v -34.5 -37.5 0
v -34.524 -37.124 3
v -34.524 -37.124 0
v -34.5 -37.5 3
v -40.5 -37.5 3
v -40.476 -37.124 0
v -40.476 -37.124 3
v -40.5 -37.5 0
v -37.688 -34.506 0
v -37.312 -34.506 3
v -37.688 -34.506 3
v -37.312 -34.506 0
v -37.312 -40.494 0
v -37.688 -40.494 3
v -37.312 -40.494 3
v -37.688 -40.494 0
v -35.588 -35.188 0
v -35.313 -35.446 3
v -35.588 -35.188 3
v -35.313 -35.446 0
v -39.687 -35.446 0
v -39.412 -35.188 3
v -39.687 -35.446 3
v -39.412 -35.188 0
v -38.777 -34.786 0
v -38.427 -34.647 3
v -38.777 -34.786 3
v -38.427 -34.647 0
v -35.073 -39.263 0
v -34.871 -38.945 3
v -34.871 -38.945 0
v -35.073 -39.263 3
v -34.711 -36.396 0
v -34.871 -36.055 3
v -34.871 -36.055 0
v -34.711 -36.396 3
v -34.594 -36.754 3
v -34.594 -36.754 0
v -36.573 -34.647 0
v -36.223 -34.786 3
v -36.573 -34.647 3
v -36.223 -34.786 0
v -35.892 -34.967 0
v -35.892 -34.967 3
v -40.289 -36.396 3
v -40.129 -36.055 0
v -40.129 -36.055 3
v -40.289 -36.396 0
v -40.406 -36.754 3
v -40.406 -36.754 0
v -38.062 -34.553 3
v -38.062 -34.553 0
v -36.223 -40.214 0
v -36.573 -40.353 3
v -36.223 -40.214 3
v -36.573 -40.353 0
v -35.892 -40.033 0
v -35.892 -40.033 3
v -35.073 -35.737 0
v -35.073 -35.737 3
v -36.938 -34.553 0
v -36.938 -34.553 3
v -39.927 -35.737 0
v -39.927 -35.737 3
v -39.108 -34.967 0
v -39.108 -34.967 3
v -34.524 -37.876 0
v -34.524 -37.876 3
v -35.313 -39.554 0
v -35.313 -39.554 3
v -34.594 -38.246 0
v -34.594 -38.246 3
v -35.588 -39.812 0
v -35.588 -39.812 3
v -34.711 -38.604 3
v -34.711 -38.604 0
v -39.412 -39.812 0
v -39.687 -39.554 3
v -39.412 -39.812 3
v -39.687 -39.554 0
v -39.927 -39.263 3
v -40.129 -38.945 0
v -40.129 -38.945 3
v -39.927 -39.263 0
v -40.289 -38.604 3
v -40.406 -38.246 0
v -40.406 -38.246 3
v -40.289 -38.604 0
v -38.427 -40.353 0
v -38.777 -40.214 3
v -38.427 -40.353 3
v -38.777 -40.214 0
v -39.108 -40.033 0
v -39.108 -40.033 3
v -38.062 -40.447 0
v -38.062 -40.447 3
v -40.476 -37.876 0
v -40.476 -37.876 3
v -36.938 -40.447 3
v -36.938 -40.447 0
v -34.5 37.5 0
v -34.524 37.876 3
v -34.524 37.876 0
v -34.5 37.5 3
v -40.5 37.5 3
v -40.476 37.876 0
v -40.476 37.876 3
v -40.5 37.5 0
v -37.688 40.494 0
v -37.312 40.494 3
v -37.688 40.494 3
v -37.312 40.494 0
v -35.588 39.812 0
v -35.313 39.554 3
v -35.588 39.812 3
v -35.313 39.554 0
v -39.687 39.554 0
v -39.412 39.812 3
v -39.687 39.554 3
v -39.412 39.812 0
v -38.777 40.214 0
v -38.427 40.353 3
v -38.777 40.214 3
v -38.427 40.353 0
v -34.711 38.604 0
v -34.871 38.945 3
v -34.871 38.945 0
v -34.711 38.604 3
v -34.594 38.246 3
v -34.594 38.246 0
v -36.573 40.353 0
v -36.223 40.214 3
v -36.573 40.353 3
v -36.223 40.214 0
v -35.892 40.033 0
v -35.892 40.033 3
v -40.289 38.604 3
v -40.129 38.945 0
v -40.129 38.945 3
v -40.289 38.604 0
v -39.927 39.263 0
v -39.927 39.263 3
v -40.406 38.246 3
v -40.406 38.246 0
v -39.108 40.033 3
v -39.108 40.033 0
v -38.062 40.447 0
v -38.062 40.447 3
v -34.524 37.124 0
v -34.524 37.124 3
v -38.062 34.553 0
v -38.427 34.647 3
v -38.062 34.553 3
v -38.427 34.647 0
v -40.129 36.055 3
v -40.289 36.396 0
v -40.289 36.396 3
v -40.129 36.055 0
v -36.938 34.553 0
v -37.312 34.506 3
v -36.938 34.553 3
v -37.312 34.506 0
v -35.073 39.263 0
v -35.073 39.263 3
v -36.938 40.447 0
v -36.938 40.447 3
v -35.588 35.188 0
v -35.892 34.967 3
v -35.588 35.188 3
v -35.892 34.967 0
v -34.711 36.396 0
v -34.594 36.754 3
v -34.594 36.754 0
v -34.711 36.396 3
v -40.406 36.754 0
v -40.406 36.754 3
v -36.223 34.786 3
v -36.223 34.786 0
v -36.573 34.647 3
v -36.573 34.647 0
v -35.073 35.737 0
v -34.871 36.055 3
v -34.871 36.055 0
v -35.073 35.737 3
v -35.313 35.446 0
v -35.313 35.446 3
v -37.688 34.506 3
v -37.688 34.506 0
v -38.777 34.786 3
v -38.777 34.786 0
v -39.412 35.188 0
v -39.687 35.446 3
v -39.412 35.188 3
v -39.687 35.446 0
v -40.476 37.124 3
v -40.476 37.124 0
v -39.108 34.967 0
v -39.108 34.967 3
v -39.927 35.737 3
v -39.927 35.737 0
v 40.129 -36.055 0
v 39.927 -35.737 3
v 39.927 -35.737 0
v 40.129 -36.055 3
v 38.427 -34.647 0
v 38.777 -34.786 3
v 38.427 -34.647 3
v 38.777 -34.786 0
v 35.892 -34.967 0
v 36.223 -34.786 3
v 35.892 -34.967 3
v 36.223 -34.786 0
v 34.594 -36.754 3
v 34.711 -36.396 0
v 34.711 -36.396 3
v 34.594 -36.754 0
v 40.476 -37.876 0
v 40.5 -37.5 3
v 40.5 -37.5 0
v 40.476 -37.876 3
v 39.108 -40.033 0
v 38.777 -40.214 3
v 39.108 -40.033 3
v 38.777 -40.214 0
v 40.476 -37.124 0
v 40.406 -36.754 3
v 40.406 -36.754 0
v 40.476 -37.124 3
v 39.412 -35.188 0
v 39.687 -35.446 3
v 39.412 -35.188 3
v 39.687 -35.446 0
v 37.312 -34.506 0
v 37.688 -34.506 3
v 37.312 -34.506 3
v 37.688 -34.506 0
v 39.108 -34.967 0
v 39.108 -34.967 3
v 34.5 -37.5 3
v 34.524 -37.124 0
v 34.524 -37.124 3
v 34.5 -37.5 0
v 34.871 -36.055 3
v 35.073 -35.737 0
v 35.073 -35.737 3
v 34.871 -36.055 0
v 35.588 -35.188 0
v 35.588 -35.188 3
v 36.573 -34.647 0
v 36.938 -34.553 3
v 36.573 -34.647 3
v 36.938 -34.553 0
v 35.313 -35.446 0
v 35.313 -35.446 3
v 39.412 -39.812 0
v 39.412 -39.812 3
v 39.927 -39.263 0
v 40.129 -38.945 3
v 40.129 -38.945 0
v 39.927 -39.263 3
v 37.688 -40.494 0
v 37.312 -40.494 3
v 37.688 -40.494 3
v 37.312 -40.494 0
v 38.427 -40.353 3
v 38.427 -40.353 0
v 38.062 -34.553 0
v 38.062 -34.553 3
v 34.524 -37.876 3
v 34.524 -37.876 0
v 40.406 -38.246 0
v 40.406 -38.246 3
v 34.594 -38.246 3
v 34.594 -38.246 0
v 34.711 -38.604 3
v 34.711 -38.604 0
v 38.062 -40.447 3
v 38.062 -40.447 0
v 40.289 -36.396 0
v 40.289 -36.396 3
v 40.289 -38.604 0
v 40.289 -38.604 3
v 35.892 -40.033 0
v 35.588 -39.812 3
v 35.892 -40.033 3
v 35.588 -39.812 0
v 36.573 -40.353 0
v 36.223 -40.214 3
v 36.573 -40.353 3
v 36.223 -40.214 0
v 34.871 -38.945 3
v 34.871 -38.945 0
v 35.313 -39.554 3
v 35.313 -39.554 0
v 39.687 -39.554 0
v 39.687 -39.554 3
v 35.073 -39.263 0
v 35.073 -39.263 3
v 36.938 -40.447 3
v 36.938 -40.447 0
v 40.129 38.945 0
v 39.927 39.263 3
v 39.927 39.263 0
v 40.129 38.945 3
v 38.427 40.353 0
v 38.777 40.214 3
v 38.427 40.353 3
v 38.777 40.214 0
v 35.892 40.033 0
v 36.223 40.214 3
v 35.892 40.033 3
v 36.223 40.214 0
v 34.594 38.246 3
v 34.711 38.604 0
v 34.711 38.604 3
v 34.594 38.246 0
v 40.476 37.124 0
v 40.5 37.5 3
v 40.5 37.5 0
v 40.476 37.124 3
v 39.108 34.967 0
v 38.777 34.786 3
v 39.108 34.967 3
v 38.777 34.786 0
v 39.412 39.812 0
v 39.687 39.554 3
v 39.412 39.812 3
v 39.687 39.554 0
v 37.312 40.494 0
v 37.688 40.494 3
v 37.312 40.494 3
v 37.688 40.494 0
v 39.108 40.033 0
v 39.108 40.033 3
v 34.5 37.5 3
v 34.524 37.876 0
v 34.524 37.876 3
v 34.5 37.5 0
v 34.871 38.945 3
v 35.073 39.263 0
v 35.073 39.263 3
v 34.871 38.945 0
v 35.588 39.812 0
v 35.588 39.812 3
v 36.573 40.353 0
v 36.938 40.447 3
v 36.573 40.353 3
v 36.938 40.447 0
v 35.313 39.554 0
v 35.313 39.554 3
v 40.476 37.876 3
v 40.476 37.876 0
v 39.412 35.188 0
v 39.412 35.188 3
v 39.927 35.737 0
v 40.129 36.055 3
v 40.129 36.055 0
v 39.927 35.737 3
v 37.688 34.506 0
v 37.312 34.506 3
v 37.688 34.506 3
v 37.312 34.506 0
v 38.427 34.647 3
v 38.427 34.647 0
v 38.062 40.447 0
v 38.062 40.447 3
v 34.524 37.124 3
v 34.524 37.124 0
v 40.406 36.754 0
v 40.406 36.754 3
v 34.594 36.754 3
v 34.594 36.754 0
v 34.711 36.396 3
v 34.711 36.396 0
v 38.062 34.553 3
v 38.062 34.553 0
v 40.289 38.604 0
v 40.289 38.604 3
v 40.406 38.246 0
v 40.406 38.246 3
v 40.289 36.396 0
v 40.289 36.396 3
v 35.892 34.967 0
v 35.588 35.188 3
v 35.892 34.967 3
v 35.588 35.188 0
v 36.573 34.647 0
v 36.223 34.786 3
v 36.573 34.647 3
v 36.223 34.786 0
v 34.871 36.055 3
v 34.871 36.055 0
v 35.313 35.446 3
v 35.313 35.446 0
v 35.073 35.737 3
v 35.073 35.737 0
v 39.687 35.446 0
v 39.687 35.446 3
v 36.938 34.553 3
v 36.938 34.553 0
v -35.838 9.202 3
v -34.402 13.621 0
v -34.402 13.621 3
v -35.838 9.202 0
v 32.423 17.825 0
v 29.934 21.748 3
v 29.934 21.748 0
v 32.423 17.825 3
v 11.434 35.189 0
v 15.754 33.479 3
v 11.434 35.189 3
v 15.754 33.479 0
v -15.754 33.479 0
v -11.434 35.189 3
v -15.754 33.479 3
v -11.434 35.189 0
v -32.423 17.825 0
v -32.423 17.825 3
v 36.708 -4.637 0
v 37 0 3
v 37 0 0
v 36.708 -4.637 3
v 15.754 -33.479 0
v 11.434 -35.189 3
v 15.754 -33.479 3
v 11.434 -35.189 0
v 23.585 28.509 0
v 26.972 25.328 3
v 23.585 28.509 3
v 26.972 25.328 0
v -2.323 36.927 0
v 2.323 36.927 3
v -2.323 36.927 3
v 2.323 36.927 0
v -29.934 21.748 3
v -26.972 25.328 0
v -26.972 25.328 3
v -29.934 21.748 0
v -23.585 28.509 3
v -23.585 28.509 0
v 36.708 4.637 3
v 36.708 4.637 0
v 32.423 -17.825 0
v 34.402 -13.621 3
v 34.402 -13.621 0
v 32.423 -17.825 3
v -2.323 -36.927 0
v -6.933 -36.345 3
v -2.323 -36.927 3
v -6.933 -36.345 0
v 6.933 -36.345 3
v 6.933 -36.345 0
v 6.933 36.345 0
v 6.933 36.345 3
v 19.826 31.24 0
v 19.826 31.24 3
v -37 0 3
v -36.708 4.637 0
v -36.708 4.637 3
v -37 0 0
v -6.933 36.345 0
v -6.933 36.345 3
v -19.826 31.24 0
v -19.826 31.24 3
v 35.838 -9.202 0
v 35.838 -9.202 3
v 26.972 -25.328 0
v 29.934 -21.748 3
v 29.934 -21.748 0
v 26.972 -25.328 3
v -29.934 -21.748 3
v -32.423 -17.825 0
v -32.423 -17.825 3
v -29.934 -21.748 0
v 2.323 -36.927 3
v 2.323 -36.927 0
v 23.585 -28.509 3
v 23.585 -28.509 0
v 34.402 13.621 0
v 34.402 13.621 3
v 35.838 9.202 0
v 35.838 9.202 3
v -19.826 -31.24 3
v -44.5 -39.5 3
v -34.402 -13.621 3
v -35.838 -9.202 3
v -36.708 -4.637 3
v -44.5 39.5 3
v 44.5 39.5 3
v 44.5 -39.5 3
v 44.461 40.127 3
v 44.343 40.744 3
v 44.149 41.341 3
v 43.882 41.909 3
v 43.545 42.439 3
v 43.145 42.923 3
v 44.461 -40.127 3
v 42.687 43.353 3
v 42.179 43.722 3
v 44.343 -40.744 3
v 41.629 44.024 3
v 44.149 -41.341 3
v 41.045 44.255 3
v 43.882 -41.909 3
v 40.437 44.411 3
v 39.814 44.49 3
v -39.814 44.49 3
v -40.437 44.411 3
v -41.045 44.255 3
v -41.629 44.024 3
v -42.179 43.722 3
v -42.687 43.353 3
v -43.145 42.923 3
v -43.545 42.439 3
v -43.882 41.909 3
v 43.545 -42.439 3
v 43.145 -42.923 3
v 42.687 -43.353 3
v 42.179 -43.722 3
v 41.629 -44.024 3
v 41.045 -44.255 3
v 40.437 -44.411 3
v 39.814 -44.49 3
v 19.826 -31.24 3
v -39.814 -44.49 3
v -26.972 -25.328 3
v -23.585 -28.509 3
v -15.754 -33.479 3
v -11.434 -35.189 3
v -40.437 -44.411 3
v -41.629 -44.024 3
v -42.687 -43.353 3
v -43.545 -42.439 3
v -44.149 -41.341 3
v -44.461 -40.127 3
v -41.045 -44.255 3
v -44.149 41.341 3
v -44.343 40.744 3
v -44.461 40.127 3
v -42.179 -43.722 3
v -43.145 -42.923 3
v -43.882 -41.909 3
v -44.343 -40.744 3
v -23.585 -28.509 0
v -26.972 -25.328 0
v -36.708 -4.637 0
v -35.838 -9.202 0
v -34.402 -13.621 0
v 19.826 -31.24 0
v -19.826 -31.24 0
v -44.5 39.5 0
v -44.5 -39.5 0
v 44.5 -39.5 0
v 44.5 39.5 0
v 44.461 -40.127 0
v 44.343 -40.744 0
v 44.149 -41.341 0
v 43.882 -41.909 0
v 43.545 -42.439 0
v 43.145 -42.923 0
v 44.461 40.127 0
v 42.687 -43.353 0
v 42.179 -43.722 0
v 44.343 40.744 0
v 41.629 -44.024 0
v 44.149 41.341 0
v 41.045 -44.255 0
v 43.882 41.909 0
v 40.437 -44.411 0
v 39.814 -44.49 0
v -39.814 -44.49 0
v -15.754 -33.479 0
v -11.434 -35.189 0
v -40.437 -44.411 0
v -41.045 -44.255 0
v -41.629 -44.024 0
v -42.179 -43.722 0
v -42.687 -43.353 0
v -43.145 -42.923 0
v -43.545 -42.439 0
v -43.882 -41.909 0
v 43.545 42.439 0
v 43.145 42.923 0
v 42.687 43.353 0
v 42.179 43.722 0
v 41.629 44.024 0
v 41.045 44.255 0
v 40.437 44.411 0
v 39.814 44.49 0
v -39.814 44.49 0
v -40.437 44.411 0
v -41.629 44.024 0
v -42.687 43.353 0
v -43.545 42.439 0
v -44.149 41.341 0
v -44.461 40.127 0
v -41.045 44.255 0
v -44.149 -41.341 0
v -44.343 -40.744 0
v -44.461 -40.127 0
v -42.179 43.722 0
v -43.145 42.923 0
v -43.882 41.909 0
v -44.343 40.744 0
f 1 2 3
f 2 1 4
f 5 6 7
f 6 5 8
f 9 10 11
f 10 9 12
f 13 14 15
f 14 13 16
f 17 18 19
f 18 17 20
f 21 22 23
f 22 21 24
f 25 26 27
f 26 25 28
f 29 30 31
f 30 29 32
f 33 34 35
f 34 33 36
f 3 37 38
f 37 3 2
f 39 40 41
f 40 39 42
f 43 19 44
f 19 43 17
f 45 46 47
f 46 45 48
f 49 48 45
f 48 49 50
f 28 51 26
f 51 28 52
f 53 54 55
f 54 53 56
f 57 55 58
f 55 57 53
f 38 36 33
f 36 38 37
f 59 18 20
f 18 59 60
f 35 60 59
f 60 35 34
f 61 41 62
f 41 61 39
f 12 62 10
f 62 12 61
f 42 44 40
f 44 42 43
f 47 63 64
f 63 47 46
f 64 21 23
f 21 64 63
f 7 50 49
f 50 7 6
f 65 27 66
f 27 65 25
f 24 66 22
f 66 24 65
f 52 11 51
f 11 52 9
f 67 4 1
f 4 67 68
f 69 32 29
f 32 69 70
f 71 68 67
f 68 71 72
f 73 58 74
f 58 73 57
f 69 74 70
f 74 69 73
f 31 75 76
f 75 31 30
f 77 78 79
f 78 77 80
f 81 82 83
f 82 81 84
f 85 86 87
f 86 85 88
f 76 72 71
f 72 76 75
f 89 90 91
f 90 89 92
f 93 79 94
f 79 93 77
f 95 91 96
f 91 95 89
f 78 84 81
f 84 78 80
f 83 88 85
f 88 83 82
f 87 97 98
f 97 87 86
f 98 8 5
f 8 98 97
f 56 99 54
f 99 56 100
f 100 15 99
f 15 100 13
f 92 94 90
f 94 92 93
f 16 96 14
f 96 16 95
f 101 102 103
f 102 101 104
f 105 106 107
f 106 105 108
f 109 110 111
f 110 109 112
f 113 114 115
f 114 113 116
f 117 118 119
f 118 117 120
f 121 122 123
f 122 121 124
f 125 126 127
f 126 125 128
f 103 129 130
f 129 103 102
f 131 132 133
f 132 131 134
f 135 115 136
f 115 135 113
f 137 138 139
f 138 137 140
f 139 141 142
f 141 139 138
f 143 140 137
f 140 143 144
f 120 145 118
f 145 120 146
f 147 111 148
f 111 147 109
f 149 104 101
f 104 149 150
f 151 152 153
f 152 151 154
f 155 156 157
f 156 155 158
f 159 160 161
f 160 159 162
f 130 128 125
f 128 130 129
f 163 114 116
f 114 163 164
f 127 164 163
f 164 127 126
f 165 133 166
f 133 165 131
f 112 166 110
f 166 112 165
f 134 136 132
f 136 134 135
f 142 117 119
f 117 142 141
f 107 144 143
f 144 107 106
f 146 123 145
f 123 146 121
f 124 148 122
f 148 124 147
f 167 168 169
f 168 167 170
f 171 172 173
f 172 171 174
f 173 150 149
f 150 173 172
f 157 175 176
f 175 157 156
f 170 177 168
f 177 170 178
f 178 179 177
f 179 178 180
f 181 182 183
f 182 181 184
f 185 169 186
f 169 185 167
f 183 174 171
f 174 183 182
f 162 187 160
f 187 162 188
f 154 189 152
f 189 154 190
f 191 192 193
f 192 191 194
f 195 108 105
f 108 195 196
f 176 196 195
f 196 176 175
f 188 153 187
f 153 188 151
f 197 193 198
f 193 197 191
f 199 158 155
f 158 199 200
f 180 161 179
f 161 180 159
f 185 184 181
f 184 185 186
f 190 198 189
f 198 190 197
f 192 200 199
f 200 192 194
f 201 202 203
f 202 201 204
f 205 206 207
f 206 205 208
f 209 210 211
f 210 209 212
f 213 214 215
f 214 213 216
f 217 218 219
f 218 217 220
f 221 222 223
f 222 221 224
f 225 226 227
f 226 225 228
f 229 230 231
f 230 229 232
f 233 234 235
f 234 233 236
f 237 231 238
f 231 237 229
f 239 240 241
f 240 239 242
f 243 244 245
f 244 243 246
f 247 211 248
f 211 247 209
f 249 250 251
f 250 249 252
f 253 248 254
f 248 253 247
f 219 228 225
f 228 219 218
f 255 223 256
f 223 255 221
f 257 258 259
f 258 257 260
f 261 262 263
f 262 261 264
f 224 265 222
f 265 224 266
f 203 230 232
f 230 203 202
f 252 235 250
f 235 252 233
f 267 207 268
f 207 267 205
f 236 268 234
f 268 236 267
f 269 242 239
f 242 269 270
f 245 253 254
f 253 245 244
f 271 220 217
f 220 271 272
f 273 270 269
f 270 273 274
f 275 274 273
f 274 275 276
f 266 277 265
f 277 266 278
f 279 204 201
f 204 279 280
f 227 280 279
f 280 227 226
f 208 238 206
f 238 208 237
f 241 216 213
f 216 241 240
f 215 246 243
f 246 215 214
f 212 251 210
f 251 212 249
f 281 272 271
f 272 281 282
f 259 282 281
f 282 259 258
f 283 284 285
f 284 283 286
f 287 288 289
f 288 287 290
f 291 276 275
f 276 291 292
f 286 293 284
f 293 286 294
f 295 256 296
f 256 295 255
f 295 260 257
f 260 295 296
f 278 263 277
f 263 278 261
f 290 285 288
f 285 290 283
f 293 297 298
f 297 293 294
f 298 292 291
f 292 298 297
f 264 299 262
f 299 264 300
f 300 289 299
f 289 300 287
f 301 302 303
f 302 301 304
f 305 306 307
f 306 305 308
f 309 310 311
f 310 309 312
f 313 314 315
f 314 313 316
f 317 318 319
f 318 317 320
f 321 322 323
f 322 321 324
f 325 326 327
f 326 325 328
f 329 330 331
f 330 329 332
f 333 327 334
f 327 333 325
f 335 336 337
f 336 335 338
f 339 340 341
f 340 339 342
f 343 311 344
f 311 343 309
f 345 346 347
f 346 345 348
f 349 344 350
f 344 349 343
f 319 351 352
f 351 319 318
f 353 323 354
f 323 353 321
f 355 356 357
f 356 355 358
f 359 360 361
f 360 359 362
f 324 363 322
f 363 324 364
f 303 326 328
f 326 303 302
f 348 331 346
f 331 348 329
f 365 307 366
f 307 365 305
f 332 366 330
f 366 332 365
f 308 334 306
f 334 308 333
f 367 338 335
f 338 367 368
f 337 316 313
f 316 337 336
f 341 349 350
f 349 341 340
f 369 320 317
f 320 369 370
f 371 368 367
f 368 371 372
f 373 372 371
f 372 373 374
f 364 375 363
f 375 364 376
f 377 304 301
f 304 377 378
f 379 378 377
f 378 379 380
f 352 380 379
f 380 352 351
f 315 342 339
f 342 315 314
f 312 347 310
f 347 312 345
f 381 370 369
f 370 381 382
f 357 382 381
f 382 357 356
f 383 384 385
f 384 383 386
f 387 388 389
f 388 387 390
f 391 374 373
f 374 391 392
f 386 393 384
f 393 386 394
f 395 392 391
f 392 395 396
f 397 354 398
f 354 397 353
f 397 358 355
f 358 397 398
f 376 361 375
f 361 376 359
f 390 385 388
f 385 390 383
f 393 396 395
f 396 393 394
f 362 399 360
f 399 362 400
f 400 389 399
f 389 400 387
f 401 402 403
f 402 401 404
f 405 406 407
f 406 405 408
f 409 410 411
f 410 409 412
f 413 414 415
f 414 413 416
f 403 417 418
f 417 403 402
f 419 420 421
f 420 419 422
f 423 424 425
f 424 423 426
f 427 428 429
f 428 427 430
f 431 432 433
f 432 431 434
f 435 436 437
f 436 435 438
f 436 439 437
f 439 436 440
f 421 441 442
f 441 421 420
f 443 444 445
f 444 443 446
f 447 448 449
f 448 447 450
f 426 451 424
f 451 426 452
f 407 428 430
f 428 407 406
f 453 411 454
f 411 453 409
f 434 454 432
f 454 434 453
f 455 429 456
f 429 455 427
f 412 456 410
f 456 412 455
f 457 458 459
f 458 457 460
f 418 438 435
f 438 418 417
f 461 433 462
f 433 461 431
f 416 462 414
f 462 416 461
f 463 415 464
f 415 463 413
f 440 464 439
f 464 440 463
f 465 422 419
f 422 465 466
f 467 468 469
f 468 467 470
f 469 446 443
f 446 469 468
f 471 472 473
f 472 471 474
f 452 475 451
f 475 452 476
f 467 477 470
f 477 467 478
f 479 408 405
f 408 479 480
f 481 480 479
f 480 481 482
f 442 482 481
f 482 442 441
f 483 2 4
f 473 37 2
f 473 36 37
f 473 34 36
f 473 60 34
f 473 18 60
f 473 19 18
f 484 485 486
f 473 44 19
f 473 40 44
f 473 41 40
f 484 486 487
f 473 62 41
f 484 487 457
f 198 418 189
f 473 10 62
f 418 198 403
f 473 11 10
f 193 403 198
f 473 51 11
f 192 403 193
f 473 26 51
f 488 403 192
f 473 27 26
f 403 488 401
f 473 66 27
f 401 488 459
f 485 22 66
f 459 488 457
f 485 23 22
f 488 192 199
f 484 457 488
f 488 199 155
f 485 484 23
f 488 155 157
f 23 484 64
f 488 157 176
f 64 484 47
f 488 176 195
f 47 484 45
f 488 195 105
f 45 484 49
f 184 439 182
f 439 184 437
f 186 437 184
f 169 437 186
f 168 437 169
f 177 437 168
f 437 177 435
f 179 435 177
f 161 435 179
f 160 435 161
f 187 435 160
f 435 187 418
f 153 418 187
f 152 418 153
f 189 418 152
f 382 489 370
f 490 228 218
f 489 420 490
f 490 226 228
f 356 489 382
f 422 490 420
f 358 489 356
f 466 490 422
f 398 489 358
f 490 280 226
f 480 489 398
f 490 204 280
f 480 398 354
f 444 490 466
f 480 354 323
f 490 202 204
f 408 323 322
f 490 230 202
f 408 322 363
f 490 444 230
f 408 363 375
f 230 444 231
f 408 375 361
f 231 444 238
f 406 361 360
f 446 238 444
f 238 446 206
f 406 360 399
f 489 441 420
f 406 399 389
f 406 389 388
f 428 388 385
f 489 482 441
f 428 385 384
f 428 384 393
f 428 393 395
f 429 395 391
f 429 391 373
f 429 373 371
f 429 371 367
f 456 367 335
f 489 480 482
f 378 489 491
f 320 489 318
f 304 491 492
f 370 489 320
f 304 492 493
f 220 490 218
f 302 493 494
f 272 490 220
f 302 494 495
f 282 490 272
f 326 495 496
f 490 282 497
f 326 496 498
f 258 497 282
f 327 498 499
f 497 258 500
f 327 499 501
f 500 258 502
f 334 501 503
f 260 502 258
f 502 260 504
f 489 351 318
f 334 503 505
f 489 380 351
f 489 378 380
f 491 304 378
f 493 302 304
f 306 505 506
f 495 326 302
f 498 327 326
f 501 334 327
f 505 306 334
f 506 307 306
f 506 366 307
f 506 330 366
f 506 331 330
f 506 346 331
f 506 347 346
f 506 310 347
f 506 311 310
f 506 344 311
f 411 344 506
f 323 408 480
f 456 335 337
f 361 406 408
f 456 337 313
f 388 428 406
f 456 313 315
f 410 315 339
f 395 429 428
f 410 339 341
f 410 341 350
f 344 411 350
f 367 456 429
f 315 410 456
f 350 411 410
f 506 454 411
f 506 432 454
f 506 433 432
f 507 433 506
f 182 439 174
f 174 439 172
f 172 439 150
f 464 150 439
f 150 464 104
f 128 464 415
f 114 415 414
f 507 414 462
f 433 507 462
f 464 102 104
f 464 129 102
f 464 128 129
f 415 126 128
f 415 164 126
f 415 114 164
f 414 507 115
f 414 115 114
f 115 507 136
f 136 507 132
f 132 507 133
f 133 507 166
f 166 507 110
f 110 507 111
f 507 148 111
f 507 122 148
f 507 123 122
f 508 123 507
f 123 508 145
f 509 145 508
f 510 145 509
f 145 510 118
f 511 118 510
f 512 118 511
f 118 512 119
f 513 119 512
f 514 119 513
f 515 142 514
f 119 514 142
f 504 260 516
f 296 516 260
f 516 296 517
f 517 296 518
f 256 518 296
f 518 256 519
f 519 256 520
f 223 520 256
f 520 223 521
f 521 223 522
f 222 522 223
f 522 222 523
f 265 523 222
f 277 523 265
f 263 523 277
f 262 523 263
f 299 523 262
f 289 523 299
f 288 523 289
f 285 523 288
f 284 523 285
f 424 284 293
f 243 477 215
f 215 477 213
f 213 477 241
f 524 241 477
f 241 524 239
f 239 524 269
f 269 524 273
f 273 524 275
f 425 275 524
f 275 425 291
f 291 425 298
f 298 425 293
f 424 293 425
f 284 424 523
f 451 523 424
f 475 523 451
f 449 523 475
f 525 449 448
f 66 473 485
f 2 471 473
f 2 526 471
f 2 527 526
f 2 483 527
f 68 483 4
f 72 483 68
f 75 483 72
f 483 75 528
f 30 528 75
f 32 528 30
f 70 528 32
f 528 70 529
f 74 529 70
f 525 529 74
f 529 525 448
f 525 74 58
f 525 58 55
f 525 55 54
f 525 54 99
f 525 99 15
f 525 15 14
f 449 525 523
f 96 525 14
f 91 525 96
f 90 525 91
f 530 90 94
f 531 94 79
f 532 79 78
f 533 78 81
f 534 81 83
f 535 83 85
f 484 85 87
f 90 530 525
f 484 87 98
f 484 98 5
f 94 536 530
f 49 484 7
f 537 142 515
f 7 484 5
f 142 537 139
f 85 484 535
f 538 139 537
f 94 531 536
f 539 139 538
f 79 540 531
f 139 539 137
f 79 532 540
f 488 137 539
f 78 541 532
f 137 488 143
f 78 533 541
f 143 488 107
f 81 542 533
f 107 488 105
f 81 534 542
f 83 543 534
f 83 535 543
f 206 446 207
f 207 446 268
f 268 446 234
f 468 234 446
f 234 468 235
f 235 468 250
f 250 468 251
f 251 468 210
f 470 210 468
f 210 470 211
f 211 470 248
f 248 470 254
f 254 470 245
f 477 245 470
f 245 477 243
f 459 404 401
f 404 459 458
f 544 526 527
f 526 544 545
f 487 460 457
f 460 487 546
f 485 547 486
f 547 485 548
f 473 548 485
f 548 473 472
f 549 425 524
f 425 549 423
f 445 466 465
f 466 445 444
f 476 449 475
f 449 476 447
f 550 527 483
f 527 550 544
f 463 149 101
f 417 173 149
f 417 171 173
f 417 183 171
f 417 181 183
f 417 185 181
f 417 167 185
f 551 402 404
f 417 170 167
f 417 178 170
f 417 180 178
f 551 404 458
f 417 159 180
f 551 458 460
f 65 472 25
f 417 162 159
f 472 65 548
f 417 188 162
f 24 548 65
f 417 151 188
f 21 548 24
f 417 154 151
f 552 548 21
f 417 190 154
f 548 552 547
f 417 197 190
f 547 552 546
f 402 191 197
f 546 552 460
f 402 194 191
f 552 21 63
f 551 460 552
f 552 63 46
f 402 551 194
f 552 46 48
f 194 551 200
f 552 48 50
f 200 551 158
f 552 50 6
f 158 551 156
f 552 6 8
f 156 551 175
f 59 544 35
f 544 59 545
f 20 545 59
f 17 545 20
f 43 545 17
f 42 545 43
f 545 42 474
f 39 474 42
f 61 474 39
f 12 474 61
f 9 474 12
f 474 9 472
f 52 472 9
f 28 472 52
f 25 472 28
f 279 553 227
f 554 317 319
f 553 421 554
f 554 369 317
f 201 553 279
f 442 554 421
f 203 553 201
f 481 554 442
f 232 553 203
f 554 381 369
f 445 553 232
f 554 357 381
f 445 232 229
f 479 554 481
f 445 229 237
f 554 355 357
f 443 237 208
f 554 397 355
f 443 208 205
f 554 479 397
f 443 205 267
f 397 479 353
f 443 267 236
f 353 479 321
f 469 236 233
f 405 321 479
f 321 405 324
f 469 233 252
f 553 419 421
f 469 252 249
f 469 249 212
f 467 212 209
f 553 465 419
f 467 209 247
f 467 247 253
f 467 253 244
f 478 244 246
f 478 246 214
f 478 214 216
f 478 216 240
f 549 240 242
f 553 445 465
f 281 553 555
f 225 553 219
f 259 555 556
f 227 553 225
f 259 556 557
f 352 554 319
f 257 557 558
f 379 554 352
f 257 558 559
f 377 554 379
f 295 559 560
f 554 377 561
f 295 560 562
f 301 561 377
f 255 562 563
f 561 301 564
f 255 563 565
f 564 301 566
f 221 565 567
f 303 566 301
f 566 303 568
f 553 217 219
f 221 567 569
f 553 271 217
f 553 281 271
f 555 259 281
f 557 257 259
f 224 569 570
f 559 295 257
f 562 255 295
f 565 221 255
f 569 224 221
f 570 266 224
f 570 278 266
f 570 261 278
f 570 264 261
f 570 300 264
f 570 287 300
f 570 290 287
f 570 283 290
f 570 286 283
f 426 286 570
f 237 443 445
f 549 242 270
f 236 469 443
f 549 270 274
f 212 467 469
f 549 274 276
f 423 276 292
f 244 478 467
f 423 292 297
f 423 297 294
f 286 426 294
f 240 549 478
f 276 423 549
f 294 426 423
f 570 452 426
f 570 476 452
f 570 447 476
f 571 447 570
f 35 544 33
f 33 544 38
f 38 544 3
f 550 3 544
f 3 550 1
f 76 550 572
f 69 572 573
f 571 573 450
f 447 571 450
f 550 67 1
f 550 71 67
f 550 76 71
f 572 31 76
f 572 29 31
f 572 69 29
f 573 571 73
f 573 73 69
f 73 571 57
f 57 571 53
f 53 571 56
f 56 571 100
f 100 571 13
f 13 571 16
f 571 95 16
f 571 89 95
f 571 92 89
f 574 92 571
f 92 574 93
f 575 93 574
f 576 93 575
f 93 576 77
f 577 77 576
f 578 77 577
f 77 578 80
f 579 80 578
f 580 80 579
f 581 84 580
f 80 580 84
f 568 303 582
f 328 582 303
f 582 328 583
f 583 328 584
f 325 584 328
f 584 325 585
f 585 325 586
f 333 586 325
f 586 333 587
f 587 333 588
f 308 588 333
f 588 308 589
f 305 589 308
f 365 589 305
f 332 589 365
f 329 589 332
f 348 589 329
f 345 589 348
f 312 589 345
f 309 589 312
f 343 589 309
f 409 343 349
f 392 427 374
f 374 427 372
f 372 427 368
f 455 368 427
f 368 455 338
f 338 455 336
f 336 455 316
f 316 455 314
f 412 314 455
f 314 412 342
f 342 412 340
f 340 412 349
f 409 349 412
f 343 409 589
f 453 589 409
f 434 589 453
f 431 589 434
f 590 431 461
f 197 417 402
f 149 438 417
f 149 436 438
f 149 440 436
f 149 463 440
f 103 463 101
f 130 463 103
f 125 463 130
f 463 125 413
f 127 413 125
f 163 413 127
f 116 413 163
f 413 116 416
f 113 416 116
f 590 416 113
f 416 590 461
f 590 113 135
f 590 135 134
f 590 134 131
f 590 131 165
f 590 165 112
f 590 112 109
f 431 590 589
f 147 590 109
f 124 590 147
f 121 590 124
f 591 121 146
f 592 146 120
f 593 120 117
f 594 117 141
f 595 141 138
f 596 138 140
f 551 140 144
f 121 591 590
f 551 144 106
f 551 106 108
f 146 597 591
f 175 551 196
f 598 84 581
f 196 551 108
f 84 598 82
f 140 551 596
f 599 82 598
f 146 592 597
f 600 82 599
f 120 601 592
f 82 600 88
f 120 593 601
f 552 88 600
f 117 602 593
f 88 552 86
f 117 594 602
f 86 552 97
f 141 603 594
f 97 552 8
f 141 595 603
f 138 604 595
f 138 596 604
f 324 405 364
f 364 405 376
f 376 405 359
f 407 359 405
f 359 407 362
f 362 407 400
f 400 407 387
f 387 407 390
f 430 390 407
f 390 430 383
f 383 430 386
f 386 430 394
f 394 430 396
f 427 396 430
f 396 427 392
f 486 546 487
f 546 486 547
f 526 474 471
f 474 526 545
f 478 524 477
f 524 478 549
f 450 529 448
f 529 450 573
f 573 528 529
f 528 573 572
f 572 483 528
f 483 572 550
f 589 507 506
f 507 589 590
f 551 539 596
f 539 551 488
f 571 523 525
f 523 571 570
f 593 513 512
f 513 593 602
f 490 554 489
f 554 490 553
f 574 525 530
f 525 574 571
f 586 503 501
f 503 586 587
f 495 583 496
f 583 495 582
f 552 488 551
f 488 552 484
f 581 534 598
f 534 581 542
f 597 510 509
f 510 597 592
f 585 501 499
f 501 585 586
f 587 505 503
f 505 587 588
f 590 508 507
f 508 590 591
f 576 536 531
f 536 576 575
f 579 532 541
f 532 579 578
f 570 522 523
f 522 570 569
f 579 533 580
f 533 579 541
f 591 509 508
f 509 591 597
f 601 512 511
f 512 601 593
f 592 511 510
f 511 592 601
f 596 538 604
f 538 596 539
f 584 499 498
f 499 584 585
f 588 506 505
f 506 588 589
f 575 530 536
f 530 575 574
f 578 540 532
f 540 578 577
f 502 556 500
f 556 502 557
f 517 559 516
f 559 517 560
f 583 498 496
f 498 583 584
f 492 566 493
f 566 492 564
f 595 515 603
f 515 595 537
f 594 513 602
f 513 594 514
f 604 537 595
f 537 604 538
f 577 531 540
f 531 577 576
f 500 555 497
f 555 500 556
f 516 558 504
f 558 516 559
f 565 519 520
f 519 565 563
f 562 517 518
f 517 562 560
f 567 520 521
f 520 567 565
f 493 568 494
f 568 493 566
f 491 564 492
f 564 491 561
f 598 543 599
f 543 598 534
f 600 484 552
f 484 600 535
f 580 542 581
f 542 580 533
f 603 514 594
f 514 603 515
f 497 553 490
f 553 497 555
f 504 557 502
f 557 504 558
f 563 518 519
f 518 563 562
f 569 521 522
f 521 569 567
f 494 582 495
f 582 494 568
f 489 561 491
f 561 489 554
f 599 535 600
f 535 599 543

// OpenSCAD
$fn = 50;


difference() {
	union() {
		hull() {
			translate(v = [-39.5000000000, 39.5000000000, 0]) {
				cylinder(h = 3, r = 5);
			}
			translate(v = [39.5000000000, 39.5000000000, 0]) {
				cylinder(h = 3, r = 5);
			}
			translate(v = [-39.5000000000, -39.5000000000, 0]) {
				cylinder(h = 3, r = 5);
			}
			translate(v = [39.5000000000, -39.5000000000, 0]) {
				cylinder(h = 3, r = 5);
			}
		}
	}
	union() {
		#translate(v = [-37.5000000000, -37.5000000000, -100.0000000000]) {
			cylinder(h = 200, r = 3.0000000000);
		}
		#translate(v = [-37.5000000000, 37.5000000000, -100.0000000000]) {
			cylinder(h = 200, r = 3.0000000000);
		}
		#translate(v = [37.5000000000, -37.5000000000, -100.0000000000]) {
			cylinder(h = 200, r = 3.0000000000);
		}
		#translate(v = [37.5000000000, 37.5000000000, -100.0000000000]) {
			cylinder(h = 200, r = 3.0000000000);
		}
		#cylinder(h = 3, r = 37.0000000000);
	}
}
